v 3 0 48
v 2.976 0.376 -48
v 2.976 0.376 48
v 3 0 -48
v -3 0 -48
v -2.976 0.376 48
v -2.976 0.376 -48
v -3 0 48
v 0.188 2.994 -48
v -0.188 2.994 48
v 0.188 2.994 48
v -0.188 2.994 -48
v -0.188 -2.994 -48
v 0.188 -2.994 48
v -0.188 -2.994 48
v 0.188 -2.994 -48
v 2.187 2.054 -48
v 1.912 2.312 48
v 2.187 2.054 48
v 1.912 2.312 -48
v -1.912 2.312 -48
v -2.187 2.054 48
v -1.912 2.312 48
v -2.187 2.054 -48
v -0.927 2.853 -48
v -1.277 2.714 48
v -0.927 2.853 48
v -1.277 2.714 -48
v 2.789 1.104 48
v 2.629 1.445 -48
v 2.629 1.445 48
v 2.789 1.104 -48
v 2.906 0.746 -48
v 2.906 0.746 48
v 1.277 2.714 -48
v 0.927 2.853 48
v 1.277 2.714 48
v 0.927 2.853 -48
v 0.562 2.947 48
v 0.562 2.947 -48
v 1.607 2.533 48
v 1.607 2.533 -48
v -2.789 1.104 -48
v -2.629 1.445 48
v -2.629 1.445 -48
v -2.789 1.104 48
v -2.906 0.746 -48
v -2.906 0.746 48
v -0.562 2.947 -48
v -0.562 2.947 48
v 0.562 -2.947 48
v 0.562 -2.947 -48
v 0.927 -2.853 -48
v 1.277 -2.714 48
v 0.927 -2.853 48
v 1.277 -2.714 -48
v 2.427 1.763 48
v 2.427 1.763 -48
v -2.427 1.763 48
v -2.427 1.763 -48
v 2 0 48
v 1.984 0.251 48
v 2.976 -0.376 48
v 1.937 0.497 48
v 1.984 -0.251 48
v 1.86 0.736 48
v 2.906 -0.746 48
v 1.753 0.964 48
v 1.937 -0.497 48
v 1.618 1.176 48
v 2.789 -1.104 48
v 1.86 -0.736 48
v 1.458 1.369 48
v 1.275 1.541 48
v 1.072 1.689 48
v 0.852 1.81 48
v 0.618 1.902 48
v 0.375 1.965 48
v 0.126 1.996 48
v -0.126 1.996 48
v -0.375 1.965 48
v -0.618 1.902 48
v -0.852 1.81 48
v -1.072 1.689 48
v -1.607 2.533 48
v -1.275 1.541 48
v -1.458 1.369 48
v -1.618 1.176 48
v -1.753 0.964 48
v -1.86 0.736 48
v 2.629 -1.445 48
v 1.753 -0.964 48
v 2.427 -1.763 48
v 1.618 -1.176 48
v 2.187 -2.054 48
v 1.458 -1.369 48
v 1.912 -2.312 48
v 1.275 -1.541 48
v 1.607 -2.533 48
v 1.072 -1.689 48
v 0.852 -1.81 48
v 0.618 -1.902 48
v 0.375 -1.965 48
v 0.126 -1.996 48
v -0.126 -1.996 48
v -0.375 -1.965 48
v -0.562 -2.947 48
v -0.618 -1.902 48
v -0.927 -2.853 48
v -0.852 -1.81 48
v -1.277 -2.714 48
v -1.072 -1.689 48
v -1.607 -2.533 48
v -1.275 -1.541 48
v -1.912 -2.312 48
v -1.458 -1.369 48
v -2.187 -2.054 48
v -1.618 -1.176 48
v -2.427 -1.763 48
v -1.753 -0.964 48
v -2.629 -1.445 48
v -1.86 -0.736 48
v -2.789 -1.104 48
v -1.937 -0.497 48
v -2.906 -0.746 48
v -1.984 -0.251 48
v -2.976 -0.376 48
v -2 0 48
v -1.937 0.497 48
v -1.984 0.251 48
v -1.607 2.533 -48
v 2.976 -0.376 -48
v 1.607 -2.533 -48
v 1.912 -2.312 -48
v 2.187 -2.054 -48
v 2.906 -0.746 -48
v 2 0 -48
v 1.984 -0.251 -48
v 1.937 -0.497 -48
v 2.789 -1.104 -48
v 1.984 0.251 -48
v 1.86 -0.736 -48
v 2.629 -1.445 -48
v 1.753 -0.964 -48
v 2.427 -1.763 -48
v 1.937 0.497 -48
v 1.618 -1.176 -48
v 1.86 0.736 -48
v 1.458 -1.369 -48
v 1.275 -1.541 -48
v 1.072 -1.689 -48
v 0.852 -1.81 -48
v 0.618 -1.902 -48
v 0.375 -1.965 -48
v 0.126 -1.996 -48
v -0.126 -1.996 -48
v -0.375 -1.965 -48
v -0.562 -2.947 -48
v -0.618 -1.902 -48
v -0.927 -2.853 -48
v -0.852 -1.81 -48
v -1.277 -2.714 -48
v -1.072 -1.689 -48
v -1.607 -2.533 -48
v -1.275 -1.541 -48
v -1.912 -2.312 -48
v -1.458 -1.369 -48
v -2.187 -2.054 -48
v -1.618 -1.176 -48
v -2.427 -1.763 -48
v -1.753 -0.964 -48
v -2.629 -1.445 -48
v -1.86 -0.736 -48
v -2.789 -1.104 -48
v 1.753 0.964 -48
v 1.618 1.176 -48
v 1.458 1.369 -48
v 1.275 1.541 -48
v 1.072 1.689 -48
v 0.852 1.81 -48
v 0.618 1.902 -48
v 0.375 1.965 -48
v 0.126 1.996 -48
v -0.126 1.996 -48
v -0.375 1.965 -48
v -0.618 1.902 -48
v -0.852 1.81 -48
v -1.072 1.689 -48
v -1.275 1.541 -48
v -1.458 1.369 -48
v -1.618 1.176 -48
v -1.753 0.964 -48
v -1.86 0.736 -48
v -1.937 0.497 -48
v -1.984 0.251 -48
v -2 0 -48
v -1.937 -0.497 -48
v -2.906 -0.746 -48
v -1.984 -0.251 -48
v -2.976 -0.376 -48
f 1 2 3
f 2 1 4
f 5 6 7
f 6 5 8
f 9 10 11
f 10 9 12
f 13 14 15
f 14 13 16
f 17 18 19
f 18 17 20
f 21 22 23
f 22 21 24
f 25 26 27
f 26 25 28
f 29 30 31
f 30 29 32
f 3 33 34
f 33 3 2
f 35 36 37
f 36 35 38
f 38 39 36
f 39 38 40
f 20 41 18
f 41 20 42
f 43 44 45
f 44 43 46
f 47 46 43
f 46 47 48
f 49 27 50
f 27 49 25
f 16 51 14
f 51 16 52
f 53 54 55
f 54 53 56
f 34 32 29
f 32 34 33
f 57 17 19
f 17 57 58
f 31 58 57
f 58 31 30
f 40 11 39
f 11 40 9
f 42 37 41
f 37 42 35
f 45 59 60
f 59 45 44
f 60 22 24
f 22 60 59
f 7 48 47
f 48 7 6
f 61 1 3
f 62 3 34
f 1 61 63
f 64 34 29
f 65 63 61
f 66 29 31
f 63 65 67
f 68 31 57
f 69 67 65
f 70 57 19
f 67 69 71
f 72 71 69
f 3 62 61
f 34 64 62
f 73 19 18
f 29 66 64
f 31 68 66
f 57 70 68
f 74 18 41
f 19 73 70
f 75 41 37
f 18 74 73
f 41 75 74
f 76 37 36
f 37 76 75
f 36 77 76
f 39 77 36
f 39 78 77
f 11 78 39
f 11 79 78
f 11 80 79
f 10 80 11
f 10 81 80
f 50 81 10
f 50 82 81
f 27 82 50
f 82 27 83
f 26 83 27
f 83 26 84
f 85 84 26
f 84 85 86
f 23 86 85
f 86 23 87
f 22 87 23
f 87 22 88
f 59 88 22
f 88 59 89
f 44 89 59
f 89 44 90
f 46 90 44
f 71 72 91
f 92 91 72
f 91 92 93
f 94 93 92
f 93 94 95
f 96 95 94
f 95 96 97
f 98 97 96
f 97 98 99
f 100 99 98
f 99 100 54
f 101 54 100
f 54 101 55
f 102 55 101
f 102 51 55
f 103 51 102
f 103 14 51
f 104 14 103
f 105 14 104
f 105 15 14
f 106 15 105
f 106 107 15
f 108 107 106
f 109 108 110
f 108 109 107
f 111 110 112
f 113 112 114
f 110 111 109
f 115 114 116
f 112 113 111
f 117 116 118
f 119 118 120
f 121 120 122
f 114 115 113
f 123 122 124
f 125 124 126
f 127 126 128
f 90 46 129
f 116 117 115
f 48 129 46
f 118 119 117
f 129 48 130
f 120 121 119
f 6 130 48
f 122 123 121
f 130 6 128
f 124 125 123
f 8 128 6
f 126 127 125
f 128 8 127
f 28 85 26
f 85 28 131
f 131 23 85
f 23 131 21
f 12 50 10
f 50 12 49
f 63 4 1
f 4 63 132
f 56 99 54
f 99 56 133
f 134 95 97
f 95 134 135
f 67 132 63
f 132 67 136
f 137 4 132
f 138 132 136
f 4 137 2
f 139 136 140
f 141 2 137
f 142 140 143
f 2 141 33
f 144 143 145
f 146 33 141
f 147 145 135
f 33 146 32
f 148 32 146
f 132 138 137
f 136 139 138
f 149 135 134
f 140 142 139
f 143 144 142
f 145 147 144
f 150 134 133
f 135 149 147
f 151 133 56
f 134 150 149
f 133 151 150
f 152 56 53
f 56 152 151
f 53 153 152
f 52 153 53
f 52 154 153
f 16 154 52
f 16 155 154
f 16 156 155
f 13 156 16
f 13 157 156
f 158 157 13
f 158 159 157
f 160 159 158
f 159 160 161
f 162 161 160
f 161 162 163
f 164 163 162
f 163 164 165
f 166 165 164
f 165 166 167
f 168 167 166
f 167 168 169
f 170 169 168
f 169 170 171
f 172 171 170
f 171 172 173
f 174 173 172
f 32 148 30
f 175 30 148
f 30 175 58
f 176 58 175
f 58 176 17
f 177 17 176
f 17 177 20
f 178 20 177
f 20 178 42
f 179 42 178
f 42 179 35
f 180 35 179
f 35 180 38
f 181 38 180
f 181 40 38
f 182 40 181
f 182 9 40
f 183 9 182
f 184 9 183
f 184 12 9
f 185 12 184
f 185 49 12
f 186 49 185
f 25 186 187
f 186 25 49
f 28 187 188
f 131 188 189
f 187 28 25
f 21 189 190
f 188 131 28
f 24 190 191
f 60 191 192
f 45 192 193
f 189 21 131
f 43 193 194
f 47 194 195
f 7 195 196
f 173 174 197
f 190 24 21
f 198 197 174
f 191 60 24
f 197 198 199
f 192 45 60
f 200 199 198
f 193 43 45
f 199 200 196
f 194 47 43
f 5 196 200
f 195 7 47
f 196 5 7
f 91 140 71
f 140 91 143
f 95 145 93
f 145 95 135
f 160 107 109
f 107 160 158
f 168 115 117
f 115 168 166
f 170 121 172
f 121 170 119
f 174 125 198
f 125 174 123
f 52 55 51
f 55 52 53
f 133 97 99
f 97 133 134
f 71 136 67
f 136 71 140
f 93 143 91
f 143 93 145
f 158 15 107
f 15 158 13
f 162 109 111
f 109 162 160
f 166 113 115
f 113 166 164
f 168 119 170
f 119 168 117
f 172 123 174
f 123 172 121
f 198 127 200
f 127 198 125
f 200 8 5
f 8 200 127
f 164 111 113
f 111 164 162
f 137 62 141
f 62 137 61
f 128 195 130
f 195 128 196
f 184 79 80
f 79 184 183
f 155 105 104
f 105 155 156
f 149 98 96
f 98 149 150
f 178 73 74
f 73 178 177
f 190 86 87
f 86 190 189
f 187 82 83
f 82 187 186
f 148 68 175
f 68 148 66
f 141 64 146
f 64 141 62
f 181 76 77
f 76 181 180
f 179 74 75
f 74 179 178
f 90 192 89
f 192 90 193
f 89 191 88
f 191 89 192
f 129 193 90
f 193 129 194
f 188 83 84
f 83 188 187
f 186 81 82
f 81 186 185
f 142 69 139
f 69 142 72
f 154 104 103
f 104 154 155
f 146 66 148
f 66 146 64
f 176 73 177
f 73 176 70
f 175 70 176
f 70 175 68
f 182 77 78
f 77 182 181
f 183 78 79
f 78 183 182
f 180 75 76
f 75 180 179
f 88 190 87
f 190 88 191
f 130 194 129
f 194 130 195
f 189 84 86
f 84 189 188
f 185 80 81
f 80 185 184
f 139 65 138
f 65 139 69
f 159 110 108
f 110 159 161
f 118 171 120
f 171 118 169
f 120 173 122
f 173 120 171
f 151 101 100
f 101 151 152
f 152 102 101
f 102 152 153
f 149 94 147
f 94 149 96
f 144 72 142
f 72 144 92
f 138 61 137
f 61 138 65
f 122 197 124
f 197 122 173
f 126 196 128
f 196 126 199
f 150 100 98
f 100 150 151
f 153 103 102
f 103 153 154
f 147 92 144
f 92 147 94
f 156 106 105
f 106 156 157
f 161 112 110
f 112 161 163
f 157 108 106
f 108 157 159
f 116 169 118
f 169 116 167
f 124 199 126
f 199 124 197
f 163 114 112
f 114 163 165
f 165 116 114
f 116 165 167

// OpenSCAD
$fn = 50;


difference() {
	union() {
		translate(v = [0, 0, -48.0000000000]) {
			cylinder(h = 96, r = 3.0000000000);
		}
	}
	union() {
		translate(v = [0, 0, -100.0000000000]) {
			cylinder(h = 200, r = 2);
		}
	}
}
